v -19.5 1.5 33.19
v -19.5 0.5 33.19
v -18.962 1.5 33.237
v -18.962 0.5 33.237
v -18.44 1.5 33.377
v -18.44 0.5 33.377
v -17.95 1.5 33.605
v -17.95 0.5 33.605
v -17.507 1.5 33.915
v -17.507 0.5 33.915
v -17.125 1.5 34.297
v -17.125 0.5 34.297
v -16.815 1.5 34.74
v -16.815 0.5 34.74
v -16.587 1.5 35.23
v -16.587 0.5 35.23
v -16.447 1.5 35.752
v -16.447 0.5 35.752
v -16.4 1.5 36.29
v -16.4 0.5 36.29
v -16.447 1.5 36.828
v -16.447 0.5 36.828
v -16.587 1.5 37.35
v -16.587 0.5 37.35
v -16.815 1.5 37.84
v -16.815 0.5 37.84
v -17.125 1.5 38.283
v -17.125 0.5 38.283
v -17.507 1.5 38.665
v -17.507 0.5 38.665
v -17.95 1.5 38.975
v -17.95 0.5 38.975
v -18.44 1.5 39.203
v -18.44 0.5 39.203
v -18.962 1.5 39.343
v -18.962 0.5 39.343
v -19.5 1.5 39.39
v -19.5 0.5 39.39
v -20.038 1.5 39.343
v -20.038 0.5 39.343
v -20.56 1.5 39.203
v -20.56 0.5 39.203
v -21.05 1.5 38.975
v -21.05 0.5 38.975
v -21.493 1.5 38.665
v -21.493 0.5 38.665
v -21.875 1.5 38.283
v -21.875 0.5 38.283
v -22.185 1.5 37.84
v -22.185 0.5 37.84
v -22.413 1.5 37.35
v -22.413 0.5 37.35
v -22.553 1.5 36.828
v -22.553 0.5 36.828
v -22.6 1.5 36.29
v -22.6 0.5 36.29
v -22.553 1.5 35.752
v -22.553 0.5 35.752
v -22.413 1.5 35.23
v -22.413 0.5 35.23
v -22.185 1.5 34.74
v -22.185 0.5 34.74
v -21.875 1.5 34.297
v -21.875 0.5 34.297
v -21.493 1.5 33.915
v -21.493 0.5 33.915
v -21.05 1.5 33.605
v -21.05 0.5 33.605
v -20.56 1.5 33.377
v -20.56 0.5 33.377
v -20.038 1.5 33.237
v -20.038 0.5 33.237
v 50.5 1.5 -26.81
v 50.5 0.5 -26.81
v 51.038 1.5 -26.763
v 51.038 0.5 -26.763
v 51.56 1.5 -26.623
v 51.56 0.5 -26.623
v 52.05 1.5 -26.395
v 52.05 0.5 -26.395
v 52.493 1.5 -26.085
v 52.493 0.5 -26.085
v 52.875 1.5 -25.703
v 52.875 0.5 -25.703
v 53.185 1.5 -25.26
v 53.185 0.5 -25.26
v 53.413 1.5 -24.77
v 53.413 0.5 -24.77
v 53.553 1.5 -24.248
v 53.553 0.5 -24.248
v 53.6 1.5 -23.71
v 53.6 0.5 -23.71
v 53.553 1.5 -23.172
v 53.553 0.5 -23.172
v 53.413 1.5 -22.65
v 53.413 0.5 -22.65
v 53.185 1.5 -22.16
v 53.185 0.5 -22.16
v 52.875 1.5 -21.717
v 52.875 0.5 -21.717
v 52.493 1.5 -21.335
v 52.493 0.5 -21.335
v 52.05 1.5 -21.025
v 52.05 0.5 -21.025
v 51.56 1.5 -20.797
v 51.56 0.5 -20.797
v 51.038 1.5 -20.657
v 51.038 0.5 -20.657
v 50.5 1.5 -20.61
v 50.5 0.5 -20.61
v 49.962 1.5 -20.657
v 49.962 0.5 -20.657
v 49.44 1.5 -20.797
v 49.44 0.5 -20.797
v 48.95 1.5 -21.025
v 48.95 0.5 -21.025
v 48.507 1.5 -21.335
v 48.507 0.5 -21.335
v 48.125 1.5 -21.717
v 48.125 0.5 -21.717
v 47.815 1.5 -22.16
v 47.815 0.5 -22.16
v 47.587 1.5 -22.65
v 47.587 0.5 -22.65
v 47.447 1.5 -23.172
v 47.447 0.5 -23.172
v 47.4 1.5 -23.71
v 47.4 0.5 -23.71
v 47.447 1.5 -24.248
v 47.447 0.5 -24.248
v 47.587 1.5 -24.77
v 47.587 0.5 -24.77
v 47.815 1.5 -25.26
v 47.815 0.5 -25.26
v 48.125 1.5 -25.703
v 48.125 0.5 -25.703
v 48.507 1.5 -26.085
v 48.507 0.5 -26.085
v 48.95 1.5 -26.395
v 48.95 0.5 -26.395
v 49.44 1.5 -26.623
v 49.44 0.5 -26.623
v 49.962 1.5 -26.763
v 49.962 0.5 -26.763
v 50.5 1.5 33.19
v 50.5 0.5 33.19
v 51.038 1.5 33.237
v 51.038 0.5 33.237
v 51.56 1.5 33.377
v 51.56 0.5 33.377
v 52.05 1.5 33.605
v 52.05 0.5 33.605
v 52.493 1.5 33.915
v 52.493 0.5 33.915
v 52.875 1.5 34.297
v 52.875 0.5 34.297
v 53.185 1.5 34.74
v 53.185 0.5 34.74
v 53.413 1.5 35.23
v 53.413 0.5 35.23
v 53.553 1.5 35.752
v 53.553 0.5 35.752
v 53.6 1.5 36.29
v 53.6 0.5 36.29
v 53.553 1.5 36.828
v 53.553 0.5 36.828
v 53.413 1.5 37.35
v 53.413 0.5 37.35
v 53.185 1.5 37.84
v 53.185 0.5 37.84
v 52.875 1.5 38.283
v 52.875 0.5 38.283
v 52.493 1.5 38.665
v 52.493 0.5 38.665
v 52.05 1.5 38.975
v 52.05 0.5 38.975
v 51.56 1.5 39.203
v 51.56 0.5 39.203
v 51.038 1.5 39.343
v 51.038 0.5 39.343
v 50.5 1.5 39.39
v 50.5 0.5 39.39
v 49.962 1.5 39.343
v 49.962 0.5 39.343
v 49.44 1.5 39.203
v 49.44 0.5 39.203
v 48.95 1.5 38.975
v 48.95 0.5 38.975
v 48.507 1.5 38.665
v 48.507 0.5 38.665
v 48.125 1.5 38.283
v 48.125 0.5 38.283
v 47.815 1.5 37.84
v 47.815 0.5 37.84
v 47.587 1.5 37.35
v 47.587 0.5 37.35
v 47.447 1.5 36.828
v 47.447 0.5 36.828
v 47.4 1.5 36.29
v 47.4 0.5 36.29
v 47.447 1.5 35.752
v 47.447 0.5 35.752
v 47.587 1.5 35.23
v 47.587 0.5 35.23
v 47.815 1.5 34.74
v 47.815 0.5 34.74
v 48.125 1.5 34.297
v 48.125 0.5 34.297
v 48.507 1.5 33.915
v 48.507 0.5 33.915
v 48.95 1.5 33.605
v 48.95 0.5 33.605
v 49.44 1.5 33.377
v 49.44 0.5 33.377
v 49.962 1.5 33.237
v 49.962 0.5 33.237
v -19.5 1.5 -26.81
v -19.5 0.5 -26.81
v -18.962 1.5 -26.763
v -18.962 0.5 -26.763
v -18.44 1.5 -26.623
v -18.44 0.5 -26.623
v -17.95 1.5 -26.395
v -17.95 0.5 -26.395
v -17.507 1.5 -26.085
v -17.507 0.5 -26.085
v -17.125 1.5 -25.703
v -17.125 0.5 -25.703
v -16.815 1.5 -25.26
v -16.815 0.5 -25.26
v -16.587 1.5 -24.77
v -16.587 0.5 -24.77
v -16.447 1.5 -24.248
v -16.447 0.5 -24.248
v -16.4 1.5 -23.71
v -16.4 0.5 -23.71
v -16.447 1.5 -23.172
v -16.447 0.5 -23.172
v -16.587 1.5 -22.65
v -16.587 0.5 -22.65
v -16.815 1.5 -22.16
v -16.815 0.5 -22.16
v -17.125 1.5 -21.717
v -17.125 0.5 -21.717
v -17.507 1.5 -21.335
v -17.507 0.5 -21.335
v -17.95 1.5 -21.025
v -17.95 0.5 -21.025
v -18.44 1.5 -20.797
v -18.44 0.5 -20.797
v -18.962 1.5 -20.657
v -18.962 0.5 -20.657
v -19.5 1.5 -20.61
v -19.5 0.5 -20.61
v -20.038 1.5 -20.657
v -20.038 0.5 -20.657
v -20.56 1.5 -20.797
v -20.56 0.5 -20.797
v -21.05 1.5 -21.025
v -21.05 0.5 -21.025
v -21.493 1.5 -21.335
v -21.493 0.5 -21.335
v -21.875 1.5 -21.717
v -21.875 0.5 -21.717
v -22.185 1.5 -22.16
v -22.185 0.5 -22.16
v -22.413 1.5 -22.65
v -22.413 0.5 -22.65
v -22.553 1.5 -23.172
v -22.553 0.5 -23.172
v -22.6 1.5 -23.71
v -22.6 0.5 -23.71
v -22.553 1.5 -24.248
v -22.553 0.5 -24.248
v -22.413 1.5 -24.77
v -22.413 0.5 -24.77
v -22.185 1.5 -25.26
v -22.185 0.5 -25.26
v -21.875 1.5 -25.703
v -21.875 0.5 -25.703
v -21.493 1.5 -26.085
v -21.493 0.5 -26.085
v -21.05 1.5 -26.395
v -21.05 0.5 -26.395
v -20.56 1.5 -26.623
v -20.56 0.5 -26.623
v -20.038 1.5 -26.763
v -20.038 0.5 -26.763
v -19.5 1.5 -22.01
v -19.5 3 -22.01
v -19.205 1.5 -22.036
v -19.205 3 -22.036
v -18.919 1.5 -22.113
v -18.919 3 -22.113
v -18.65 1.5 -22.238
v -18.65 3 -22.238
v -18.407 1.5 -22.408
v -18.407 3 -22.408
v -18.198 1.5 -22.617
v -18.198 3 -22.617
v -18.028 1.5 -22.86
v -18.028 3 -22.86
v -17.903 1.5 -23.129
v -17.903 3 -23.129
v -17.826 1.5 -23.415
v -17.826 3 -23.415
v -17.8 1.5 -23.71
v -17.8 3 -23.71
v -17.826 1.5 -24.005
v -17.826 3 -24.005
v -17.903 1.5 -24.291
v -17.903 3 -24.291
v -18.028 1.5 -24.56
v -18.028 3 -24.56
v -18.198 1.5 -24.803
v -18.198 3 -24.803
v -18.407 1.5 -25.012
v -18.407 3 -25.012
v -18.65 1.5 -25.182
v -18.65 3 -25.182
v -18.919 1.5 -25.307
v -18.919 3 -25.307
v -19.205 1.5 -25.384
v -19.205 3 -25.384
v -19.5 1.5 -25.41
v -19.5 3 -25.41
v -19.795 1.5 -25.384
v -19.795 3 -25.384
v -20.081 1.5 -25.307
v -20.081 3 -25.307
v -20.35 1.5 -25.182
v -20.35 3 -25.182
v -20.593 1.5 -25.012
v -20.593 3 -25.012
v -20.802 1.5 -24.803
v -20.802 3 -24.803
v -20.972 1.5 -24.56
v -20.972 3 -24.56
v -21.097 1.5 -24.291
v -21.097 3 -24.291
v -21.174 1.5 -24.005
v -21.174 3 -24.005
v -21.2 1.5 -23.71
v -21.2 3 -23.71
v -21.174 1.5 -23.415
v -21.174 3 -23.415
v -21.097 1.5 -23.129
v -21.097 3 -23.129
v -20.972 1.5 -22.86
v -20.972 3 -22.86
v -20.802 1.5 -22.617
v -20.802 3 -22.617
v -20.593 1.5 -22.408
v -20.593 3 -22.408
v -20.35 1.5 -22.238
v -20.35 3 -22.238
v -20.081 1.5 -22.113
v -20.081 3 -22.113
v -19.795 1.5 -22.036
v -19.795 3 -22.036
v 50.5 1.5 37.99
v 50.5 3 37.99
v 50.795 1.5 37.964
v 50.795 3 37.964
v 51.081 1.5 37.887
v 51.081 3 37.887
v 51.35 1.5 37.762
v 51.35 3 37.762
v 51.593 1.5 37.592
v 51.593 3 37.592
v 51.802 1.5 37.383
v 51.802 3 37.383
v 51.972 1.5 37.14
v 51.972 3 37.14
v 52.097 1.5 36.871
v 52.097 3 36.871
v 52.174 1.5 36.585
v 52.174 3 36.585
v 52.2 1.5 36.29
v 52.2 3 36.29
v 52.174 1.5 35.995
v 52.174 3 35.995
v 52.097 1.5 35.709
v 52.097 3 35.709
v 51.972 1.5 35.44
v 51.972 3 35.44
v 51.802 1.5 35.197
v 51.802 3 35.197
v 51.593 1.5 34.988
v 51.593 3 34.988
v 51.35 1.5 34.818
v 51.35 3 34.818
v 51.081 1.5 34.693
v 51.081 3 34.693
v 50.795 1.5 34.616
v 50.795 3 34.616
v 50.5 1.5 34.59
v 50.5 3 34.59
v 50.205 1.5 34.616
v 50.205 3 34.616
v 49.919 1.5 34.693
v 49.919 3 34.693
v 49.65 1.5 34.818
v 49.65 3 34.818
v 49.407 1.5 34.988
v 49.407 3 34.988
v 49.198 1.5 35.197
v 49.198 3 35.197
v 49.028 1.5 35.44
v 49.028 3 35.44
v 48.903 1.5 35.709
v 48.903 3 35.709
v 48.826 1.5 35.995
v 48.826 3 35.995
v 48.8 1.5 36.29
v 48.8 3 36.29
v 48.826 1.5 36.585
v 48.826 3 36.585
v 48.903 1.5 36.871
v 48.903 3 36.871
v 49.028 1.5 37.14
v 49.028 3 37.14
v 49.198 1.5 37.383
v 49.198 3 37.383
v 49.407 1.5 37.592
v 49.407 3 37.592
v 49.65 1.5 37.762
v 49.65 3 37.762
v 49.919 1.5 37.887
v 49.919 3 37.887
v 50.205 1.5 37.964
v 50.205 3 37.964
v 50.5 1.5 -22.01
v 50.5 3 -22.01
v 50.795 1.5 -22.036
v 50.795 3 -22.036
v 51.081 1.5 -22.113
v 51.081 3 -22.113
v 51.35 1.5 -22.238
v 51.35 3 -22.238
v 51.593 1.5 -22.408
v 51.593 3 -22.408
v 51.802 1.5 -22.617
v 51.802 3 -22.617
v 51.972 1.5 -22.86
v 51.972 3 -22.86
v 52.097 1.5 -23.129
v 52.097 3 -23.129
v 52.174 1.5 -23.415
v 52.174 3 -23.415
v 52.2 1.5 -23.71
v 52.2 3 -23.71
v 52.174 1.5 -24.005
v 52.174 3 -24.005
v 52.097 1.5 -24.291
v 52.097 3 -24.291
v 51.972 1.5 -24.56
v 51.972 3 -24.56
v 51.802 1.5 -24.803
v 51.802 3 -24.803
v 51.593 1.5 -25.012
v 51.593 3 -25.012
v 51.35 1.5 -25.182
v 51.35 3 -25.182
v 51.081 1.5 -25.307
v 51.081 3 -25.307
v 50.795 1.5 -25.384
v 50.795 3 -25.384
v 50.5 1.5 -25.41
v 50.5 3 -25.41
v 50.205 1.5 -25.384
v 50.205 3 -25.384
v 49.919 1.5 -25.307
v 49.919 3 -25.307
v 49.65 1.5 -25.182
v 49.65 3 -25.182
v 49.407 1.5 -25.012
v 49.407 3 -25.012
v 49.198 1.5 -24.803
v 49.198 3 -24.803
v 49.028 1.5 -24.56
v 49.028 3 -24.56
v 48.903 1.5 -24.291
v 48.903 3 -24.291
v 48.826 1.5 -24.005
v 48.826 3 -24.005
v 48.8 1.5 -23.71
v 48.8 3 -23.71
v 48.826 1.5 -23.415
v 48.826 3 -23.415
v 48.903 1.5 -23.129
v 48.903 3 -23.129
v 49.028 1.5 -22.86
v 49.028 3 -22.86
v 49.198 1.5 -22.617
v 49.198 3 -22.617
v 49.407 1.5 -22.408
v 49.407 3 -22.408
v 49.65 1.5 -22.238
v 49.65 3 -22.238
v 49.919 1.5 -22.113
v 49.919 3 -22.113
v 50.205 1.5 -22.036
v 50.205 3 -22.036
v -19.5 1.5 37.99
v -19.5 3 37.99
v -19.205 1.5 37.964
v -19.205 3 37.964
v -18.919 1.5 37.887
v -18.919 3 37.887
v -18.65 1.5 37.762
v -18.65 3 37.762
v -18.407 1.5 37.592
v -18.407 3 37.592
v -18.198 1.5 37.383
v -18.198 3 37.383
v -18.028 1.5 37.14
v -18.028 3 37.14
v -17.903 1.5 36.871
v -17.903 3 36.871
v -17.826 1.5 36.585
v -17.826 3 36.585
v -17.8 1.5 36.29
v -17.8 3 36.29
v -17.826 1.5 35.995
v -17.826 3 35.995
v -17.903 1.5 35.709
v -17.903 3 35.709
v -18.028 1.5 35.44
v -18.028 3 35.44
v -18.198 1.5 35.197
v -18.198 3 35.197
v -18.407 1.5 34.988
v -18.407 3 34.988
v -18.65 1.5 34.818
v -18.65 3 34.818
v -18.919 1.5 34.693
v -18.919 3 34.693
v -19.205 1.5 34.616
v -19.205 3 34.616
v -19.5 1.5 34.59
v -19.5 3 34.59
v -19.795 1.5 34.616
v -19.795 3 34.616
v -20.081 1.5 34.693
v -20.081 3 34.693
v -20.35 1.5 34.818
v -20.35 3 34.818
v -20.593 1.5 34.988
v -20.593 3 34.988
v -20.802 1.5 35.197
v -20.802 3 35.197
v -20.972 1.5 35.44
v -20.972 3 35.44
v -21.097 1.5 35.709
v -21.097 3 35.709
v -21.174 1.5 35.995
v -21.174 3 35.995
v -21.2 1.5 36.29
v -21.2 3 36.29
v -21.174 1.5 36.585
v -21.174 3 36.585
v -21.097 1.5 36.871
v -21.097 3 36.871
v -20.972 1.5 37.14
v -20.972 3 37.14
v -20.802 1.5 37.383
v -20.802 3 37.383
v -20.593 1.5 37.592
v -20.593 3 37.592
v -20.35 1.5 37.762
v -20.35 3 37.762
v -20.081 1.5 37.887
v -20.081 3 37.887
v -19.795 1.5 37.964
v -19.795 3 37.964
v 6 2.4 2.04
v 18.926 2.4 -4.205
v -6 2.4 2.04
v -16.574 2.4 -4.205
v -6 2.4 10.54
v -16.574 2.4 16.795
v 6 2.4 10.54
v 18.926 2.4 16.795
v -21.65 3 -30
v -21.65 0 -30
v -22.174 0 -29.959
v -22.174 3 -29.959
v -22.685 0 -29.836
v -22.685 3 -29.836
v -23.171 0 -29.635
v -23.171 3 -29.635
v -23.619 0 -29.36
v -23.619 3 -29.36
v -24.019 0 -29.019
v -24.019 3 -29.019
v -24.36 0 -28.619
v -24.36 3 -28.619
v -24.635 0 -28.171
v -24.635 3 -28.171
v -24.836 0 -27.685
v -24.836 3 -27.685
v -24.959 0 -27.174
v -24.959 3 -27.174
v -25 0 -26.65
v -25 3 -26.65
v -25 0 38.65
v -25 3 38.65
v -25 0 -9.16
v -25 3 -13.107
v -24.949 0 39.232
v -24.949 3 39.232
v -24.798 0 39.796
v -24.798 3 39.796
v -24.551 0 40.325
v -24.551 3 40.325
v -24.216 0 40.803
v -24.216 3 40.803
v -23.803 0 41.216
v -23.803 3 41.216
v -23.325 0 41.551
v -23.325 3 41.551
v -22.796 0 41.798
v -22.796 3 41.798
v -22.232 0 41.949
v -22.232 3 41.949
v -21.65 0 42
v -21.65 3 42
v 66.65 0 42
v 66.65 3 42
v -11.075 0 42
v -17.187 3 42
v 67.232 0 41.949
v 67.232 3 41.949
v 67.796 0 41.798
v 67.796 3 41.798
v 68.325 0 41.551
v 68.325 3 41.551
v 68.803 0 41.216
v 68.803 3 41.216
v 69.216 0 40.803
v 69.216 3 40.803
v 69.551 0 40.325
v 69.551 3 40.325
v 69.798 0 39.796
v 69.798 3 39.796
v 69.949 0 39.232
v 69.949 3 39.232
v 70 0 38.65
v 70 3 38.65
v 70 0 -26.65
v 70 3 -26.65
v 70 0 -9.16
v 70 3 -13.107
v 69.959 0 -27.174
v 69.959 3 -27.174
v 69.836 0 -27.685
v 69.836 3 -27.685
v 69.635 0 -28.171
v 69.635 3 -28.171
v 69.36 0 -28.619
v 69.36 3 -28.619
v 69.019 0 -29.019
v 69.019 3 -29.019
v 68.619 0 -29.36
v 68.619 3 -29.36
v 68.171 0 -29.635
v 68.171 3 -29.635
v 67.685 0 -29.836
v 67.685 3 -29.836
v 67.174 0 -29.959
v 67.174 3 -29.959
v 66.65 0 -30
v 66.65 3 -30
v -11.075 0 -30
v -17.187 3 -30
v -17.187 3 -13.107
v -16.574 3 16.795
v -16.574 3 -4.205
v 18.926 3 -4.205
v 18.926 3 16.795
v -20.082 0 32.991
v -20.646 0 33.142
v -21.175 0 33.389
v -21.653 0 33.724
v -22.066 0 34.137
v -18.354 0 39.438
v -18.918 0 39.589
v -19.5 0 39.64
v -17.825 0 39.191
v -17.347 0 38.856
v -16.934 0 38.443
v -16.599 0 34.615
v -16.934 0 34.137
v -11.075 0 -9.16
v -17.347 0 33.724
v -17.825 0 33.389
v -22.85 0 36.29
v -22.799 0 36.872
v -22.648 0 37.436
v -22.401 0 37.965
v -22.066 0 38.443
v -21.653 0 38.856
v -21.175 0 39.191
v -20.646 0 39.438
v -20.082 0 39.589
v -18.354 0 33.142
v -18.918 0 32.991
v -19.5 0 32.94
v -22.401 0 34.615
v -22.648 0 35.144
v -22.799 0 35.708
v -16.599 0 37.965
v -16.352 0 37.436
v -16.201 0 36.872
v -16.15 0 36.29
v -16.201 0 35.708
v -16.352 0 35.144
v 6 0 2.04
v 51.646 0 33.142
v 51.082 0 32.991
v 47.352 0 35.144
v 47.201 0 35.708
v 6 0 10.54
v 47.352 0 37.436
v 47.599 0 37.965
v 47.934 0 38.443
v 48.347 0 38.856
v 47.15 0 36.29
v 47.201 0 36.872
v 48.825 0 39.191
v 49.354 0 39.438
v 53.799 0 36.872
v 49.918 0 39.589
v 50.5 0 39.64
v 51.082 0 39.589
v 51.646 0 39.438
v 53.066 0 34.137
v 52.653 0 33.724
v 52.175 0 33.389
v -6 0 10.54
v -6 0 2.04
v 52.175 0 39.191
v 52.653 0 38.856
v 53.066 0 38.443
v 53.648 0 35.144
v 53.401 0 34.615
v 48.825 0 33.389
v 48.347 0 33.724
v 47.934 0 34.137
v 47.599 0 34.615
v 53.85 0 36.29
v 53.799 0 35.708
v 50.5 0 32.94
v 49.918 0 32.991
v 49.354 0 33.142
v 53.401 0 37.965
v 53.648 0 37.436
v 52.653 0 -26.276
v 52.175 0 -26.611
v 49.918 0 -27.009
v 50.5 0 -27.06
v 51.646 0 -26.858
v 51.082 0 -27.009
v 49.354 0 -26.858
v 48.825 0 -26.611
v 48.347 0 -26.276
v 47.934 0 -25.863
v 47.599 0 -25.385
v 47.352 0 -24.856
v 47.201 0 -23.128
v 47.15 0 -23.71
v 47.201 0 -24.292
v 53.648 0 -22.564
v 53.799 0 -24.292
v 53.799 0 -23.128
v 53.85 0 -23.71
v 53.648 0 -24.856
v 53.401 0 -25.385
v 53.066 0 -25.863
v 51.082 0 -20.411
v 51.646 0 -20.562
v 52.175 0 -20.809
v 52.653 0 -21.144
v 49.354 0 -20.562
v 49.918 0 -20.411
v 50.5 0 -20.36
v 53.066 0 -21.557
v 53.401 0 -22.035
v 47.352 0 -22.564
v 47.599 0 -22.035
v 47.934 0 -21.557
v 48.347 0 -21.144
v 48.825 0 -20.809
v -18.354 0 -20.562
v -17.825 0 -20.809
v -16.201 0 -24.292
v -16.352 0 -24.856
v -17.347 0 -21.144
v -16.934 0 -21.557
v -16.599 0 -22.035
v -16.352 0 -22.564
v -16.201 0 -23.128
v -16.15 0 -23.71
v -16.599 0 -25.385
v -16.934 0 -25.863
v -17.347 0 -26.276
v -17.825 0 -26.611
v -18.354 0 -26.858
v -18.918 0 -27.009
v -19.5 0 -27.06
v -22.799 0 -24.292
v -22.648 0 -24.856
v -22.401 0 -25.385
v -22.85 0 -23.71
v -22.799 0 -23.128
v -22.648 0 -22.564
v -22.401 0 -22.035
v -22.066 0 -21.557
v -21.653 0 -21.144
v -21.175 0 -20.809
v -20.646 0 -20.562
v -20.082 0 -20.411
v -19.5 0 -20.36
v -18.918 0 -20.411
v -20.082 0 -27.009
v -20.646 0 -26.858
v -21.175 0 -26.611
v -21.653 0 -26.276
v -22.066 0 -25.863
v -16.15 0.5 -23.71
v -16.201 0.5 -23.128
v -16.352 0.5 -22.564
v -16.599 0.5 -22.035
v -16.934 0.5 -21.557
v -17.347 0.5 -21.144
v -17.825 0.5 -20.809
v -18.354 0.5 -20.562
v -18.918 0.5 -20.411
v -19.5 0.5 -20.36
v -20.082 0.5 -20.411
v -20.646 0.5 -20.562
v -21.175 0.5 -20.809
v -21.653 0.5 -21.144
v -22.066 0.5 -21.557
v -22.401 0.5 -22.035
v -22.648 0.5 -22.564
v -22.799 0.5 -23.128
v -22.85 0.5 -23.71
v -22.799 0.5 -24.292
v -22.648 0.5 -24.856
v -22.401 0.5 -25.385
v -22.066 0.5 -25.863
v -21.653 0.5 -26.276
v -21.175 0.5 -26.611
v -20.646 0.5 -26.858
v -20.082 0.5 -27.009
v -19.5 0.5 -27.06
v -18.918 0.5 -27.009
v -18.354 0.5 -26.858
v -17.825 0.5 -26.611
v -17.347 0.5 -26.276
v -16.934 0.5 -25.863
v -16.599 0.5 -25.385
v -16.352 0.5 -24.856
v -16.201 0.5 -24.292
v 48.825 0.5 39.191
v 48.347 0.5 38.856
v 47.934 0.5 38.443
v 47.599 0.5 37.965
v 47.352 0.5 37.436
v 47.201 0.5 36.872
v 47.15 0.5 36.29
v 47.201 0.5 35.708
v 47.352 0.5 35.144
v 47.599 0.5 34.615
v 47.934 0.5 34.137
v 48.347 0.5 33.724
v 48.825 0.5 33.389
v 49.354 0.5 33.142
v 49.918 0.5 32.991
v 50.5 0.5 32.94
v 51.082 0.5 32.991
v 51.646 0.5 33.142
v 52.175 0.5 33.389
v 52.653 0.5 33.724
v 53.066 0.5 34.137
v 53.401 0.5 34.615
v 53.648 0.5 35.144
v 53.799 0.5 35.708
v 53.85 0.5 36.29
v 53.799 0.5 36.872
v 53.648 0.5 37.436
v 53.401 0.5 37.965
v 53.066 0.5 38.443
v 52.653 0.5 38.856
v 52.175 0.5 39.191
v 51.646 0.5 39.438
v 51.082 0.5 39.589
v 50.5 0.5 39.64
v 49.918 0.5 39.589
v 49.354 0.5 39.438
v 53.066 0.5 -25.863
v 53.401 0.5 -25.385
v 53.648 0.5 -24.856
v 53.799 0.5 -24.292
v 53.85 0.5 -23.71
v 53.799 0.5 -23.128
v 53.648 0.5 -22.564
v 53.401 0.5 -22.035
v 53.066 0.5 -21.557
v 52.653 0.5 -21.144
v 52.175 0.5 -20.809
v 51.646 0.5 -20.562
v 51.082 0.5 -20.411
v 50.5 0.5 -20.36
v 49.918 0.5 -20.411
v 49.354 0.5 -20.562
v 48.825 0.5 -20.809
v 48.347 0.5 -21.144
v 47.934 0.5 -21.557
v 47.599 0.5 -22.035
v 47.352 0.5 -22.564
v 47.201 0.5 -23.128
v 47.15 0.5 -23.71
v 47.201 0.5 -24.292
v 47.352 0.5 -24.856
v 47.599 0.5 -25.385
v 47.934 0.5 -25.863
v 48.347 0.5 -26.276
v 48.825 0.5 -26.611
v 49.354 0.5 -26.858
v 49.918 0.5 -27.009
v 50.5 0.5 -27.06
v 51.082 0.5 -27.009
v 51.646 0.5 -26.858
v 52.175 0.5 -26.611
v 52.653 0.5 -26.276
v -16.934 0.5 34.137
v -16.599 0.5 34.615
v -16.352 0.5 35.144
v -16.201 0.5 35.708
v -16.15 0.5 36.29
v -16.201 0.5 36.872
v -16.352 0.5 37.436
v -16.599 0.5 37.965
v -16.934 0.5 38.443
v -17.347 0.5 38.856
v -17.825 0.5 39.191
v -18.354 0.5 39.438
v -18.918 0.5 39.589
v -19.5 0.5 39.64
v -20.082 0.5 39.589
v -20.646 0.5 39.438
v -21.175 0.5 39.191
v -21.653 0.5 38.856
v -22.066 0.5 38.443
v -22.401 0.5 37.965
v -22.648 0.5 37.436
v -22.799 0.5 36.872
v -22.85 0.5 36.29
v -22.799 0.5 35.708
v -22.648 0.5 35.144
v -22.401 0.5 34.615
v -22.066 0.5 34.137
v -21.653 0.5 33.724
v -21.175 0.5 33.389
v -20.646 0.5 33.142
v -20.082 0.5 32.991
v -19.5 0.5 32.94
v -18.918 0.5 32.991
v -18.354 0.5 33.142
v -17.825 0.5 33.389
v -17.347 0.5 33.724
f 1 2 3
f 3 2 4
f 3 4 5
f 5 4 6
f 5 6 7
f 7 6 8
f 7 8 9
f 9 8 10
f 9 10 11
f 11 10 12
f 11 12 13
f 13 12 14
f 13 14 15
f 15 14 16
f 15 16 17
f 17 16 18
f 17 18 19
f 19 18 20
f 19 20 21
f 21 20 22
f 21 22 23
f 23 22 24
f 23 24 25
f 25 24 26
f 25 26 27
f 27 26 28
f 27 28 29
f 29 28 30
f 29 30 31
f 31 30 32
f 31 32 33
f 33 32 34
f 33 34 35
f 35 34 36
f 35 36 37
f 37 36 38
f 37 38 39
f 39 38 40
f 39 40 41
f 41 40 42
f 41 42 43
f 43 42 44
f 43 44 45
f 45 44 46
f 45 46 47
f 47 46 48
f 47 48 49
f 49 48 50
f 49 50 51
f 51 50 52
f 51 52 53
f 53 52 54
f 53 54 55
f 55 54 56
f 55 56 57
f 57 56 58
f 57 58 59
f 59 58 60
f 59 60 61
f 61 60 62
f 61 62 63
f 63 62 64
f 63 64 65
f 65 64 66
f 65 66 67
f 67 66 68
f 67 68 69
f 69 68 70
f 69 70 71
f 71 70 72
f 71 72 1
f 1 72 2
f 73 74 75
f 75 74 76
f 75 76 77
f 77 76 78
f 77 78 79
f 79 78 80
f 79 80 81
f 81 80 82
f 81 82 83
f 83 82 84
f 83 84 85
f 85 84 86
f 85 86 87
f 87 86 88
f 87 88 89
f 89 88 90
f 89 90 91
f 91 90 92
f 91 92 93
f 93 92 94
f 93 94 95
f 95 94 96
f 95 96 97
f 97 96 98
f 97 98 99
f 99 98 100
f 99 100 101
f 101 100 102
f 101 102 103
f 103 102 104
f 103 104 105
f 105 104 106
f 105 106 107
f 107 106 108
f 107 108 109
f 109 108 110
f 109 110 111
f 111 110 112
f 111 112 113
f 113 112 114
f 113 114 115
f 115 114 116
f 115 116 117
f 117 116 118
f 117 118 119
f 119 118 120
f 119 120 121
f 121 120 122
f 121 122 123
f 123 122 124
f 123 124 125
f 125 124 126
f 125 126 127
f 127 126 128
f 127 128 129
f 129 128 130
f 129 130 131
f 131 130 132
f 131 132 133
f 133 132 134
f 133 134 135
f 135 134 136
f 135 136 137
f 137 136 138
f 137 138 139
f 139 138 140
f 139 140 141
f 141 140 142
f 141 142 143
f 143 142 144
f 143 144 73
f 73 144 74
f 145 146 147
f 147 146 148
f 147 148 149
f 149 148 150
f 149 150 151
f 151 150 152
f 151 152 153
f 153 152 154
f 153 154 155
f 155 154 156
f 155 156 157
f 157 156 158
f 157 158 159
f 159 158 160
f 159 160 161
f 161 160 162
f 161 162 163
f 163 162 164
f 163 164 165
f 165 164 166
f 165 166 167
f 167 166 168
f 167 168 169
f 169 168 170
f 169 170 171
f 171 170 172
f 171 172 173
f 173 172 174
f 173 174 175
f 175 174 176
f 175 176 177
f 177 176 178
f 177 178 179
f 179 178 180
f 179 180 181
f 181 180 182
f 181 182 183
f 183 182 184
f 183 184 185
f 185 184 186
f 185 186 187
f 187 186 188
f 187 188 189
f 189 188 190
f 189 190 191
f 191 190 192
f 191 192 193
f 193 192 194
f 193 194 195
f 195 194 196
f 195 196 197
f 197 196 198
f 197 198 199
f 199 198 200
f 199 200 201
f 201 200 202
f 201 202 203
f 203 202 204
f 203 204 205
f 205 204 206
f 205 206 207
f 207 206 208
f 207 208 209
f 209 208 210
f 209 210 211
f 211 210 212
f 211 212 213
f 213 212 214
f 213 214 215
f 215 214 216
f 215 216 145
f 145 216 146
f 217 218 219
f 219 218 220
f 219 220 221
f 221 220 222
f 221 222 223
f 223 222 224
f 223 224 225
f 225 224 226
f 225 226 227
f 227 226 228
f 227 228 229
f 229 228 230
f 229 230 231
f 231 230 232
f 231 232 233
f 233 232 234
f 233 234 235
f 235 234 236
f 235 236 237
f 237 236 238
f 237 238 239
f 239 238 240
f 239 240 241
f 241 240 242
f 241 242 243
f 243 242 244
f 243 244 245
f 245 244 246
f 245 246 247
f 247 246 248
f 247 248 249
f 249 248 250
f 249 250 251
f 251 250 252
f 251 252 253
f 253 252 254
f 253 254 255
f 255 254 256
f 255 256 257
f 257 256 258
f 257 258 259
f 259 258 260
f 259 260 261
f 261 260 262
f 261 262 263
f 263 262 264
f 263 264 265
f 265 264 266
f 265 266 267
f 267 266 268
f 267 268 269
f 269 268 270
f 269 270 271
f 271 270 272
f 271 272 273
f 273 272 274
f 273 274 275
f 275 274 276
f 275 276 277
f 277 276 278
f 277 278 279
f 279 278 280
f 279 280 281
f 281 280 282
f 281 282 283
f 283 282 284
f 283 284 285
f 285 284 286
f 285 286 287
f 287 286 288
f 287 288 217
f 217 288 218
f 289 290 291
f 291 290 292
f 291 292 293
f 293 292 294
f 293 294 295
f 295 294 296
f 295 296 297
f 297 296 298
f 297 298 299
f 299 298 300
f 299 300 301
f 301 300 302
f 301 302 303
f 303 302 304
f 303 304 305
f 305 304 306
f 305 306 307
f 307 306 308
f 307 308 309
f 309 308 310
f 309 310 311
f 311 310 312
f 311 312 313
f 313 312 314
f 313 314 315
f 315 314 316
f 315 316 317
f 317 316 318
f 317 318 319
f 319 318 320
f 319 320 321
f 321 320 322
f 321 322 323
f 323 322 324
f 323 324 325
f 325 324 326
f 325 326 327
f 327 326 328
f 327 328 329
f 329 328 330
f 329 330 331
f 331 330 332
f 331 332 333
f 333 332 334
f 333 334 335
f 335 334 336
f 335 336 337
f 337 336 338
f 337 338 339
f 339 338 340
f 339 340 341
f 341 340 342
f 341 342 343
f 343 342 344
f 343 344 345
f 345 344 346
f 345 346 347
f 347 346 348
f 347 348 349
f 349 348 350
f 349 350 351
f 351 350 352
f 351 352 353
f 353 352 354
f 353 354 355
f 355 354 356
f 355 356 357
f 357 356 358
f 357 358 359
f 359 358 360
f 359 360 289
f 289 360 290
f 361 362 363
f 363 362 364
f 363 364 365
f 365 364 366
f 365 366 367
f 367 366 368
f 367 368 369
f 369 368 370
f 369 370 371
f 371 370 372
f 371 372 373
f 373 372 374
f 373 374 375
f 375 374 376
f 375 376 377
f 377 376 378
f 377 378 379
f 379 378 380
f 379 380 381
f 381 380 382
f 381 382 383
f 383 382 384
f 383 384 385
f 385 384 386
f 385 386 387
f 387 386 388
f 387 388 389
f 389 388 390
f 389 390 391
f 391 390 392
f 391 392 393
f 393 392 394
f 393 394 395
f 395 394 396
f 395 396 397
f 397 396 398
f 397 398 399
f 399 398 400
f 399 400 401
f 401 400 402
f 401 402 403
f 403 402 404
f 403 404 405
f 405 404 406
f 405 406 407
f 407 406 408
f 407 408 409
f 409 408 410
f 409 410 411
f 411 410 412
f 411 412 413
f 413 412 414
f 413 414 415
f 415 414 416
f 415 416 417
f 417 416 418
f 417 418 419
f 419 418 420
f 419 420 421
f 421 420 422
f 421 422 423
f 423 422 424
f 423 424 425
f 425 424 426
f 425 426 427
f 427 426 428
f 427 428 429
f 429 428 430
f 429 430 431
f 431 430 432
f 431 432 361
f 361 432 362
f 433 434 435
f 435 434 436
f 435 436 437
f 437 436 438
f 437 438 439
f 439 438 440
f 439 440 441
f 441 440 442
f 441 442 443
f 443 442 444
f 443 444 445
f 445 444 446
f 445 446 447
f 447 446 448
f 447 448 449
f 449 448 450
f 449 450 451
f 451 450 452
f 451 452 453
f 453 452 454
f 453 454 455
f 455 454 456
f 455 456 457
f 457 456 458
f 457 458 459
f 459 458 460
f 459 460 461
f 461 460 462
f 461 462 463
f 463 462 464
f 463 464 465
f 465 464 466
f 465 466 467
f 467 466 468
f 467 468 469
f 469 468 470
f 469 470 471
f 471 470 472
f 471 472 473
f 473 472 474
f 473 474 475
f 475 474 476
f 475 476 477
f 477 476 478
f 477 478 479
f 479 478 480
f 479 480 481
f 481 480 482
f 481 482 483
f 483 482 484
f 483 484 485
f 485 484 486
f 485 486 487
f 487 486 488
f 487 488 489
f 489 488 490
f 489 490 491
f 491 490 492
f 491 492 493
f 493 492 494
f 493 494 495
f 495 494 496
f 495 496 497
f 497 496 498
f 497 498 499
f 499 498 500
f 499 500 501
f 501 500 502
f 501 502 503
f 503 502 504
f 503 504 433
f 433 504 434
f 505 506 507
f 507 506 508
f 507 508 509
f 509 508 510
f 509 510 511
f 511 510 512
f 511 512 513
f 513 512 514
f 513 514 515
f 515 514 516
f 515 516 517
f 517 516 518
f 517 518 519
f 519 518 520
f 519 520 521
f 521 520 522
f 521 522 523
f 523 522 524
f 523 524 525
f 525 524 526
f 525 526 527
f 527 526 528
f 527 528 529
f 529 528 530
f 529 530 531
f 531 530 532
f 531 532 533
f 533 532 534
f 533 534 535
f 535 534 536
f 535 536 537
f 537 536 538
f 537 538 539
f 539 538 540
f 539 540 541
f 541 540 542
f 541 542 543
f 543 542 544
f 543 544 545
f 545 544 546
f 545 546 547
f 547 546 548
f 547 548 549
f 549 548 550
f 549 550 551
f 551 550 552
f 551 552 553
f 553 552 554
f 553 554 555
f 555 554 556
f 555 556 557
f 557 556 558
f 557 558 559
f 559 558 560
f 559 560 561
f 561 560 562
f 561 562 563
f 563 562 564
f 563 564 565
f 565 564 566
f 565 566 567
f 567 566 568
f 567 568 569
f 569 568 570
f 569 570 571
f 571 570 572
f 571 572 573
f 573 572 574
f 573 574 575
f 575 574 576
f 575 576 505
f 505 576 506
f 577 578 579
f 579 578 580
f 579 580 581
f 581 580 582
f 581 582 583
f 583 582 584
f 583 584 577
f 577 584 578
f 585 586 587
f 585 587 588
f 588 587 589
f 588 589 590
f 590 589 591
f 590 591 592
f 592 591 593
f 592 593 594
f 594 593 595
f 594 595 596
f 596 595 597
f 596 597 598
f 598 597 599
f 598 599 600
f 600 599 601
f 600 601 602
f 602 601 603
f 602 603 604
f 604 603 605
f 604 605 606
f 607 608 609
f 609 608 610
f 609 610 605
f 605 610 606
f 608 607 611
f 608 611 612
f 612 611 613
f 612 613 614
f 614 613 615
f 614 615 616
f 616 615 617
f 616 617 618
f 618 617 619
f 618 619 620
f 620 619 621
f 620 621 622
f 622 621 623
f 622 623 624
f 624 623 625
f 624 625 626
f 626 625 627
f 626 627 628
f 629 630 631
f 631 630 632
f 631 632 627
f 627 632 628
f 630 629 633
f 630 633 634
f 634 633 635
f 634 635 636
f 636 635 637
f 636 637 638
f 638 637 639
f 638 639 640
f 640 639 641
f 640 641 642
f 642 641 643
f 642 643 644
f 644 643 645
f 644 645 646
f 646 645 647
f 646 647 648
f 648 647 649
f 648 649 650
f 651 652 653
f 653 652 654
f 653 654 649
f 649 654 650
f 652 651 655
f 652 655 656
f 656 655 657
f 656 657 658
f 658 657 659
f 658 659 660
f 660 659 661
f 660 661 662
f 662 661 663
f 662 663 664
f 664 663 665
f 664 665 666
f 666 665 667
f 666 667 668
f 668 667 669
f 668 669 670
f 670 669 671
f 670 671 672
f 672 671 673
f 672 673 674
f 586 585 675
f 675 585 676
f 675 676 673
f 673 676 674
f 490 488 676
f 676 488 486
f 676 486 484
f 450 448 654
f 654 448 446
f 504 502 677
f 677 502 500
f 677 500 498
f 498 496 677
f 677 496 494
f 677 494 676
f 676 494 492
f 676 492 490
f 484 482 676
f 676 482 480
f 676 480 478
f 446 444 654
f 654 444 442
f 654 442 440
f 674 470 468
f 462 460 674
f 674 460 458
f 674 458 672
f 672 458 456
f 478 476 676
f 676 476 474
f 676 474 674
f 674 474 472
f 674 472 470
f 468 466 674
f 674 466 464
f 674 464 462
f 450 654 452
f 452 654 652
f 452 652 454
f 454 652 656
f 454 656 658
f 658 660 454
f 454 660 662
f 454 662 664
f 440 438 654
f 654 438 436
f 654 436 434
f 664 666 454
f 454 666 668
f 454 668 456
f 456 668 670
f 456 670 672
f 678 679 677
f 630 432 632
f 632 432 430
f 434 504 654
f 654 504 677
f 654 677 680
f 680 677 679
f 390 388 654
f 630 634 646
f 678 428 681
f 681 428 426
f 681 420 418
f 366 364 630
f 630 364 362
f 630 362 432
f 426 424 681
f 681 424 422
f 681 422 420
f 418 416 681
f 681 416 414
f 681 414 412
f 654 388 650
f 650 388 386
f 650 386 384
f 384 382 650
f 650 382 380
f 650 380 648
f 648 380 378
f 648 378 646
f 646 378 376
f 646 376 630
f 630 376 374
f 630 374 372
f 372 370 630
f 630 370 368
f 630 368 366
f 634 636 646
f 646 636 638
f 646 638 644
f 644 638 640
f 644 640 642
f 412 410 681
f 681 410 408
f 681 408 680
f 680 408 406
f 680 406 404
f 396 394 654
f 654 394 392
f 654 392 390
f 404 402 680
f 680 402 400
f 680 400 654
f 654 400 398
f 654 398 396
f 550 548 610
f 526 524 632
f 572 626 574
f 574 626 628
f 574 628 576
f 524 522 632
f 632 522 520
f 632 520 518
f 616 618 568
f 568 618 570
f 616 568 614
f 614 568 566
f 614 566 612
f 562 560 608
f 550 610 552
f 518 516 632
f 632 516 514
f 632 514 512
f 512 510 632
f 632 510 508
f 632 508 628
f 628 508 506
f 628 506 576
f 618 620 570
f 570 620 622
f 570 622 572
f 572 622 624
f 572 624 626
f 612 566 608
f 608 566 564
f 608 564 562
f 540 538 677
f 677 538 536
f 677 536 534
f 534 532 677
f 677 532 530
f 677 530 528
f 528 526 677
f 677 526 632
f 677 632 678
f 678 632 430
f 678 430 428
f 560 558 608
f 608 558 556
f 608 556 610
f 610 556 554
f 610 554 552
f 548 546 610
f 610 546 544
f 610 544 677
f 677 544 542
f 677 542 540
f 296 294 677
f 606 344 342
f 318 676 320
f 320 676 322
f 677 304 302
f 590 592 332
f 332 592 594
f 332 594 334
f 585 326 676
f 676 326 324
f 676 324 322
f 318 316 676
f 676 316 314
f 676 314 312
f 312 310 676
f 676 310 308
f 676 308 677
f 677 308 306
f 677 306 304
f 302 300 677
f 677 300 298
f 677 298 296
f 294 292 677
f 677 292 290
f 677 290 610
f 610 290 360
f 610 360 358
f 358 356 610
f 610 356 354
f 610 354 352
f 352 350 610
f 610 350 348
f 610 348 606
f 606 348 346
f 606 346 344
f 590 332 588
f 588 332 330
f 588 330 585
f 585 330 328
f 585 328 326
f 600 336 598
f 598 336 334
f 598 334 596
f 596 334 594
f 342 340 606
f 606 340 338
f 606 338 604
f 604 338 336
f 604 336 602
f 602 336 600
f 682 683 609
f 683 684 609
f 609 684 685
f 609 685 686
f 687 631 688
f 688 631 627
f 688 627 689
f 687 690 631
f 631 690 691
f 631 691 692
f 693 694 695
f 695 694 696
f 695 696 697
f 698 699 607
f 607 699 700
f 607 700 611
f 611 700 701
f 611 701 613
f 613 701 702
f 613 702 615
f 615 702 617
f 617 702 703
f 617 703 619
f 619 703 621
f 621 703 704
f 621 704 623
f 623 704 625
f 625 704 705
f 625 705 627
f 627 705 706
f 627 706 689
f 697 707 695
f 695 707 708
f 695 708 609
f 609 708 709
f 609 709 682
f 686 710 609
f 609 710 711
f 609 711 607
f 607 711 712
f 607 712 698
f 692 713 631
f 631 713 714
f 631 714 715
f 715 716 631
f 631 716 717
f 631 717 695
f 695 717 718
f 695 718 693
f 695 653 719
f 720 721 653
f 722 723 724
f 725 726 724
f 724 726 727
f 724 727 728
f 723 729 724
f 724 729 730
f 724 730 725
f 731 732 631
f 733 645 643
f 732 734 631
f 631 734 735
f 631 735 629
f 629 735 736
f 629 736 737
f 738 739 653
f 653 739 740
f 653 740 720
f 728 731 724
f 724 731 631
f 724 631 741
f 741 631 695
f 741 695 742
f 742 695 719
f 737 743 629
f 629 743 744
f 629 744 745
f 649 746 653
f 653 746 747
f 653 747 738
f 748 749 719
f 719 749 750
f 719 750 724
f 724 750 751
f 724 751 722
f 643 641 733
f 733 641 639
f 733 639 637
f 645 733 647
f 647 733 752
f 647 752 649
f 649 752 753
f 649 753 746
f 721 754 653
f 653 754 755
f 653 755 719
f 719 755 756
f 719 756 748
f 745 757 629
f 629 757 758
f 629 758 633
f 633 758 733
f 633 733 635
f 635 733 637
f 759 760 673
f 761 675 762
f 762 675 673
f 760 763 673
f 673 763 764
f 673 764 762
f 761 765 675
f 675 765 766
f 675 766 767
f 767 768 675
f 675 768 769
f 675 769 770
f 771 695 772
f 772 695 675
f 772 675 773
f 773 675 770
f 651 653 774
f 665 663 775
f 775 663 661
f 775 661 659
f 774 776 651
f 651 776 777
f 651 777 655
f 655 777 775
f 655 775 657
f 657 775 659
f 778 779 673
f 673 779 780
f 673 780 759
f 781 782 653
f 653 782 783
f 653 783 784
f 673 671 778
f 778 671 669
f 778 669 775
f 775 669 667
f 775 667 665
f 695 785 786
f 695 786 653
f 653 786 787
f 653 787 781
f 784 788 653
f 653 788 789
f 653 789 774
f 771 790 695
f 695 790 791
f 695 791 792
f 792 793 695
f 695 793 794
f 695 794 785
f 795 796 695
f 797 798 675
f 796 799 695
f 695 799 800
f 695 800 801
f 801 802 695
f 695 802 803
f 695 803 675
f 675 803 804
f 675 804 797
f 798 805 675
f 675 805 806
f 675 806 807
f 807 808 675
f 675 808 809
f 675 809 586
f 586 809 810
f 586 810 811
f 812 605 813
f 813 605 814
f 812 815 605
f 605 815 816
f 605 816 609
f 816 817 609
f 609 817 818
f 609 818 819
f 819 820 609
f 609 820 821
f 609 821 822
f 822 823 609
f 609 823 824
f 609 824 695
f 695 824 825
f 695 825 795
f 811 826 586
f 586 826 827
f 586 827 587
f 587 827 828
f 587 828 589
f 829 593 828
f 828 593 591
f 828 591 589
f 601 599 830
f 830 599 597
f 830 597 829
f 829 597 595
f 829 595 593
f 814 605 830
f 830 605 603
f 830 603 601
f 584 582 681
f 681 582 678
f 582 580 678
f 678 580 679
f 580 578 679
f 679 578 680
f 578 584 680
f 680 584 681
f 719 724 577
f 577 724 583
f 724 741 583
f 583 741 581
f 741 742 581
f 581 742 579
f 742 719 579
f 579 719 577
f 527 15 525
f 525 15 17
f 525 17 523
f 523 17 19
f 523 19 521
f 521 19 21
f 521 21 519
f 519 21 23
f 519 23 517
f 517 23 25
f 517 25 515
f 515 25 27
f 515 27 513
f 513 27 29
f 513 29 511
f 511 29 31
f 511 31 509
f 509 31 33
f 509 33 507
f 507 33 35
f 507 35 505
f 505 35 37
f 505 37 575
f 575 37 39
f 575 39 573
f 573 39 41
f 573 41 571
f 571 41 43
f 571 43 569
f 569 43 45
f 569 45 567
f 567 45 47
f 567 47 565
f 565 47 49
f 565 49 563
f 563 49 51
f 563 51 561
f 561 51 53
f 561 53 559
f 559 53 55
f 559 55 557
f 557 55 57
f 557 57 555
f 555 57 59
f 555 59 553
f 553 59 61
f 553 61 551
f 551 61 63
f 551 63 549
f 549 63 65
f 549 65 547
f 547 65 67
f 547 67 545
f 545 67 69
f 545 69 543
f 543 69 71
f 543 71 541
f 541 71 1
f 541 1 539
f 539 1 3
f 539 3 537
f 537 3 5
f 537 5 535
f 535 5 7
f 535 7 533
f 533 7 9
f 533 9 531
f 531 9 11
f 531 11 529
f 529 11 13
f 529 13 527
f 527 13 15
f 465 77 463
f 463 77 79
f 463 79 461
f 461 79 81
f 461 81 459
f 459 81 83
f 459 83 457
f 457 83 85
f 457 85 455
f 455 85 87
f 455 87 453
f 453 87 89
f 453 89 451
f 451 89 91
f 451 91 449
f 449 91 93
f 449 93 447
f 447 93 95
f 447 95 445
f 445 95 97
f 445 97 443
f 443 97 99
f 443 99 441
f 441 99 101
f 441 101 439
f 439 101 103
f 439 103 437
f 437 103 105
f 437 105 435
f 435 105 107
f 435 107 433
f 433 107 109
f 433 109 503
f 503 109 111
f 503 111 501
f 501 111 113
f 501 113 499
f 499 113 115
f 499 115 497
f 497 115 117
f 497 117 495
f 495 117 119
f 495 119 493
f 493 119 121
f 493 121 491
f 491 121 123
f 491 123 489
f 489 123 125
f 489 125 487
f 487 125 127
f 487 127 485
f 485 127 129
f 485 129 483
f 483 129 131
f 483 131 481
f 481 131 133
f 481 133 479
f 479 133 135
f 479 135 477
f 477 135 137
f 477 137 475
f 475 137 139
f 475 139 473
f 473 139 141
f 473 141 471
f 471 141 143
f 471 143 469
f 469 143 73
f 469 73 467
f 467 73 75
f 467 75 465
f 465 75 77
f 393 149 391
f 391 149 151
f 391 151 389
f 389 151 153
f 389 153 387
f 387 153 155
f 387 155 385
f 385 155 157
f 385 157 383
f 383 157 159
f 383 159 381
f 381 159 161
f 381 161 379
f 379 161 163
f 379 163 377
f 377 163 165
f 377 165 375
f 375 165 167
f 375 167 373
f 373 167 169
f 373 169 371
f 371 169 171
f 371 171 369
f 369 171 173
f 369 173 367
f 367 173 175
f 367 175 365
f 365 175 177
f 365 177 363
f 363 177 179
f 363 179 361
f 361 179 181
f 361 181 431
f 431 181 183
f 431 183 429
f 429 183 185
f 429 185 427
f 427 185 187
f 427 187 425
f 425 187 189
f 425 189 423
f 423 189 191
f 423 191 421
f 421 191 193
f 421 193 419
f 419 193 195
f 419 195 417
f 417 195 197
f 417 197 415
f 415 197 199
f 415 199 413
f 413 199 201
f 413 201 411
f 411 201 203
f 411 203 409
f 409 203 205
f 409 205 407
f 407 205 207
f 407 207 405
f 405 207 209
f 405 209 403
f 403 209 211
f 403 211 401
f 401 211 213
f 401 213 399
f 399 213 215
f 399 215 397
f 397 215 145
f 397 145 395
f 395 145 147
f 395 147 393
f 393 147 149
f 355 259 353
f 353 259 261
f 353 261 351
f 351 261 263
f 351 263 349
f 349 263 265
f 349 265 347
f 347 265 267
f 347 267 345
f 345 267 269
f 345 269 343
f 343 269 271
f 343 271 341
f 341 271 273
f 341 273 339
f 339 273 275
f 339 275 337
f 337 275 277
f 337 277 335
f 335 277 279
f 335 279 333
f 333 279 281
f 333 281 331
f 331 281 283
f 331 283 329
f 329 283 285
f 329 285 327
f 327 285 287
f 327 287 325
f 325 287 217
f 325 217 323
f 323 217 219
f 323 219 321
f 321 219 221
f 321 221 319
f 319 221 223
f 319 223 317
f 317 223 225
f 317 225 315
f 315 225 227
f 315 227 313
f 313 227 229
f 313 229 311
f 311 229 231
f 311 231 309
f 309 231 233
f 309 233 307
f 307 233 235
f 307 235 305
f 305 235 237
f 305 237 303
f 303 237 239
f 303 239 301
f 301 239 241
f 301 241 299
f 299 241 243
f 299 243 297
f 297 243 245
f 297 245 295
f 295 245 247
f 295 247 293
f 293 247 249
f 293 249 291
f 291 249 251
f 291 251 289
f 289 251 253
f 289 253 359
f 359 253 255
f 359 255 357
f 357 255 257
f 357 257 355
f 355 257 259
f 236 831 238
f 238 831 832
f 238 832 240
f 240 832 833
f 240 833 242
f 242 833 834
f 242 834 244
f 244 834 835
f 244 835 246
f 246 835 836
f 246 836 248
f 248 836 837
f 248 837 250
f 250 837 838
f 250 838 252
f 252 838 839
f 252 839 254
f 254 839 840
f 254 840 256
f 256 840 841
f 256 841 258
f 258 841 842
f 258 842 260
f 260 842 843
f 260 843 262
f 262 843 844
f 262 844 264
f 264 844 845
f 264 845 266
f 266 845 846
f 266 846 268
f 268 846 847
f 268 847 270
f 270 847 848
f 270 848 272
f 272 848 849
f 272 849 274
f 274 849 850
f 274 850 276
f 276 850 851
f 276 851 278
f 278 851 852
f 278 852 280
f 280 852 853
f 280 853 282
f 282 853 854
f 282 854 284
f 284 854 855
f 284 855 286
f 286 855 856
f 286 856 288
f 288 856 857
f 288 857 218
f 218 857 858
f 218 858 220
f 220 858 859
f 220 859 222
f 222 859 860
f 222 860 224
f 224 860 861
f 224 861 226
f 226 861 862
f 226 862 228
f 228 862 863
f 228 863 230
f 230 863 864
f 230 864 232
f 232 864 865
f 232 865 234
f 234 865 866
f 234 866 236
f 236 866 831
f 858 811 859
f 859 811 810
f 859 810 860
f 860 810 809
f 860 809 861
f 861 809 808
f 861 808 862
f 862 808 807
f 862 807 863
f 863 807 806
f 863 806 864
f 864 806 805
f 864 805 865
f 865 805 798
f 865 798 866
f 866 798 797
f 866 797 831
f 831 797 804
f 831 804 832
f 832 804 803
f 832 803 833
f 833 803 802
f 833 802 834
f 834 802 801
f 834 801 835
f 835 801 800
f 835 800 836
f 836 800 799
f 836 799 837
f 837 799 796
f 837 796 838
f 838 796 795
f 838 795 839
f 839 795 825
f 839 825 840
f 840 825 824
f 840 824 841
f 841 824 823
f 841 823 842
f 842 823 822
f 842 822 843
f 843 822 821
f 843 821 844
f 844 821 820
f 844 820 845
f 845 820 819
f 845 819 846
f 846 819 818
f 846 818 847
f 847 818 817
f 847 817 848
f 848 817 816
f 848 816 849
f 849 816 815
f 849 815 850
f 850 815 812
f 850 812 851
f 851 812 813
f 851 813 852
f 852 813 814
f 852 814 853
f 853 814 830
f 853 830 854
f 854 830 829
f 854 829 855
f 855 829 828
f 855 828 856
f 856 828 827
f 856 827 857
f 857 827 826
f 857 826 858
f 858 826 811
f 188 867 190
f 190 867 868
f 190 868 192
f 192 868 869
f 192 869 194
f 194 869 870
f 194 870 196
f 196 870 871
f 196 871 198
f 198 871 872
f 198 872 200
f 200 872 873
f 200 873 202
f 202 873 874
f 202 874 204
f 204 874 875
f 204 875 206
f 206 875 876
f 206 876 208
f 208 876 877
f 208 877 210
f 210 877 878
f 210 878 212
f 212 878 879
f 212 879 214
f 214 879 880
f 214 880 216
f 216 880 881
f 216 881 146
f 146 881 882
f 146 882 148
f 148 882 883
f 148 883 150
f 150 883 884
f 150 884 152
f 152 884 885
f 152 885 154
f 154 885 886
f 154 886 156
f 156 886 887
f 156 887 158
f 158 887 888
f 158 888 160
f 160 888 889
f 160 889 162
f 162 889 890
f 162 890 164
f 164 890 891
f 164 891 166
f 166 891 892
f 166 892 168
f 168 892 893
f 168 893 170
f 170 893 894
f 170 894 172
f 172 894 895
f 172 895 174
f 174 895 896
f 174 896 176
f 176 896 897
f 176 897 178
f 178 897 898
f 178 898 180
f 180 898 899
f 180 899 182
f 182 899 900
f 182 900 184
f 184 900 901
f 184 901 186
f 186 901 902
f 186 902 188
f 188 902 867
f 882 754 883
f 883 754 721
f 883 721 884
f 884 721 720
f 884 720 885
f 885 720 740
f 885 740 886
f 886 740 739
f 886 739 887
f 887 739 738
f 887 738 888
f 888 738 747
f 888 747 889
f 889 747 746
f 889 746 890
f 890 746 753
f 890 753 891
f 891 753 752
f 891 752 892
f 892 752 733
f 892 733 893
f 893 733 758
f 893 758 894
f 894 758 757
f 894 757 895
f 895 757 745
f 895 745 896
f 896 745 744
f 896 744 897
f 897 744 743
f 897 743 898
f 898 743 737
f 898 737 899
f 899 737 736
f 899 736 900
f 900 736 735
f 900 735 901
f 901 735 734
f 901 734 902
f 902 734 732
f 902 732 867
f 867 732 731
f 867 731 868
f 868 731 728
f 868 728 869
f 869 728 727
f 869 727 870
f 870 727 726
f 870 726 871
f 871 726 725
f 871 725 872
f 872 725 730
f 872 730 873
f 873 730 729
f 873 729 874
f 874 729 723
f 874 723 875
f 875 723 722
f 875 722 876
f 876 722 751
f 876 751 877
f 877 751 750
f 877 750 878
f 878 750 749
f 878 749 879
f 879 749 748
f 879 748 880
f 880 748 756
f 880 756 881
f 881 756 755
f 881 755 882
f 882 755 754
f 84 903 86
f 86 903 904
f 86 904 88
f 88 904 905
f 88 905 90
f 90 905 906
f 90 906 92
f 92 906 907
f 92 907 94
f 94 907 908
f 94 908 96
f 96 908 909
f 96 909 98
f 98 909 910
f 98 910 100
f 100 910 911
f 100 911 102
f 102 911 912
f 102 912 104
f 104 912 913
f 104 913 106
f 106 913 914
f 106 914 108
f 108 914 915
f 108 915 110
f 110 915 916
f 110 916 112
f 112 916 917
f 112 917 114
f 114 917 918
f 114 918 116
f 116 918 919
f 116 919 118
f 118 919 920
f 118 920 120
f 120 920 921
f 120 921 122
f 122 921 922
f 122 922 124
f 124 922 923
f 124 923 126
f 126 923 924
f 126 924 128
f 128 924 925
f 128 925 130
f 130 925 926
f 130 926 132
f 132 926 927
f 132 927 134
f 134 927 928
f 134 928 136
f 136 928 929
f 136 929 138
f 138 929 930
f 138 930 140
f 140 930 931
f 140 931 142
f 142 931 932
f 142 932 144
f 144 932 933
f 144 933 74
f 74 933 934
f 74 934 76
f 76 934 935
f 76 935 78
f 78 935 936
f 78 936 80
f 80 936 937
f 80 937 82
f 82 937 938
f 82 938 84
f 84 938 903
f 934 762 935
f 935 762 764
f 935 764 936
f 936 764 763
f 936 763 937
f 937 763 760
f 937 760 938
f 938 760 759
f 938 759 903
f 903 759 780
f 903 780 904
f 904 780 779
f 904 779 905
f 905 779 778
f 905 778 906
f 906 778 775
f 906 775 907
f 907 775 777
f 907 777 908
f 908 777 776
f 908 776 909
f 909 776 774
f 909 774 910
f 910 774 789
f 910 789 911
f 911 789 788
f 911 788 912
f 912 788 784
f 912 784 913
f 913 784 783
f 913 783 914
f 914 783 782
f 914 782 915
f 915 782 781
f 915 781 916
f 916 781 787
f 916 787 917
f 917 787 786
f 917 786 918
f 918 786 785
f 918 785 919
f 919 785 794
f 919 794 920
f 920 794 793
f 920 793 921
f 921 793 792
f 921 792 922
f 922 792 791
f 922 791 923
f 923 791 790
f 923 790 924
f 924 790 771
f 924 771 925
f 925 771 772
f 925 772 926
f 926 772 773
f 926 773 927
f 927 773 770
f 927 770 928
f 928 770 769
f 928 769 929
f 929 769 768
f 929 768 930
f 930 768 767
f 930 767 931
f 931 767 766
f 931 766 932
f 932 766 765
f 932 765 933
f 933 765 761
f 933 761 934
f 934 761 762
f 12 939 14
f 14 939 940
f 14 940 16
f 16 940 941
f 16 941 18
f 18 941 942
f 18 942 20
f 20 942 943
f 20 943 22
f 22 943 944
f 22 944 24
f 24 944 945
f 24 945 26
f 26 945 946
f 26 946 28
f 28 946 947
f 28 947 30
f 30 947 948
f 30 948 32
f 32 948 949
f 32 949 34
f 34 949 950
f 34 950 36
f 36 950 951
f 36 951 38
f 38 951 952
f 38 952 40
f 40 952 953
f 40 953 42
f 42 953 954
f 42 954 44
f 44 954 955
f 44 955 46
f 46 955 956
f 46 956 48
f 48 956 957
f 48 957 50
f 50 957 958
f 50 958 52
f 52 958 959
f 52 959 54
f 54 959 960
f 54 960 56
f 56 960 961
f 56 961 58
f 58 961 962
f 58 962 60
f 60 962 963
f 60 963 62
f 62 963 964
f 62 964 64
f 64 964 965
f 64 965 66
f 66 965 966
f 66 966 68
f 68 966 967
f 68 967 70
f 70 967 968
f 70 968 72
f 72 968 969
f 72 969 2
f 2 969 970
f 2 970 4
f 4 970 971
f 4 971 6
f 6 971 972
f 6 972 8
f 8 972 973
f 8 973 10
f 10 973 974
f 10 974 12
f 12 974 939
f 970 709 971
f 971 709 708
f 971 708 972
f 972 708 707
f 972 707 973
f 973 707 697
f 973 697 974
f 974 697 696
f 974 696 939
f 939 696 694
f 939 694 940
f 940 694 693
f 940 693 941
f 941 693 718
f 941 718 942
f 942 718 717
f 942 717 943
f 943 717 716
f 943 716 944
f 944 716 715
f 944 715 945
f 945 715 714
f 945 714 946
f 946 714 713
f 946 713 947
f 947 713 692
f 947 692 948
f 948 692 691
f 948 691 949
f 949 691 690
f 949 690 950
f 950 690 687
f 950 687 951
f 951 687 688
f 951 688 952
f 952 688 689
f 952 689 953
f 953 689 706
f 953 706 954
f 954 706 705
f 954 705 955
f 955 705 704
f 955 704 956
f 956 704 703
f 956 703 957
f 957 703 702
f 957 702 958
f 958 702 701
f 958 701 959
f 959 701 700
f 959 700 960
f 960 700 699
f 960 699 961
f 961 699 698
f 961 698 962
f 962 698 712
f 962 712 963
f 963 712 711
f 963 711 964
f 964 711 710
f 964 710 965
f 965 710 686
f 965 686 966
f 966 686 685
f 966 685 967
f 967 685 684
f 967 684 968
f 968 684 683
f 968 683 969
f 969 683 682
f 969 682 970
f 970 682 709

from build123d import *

# Parameters (mm, degrees)
EXTRUDE_2_DEPTH     = 3
SKETCH_11_R         = 1.7
CUT_EXTRUDE_2_DEPTH = 82.688432474
SKETCH_13_W         = 35.5
SKETCH_13_H         = 21
CUT_EXTRUDE_3_DEPTH = 0.6
SKETCH_14_W         = 12
SKETCH_14_H         = 8.5
CUT_EXTRUDE_4_DEPTH = 82.668598617
SKETCH_16_R         = 3.1
CUT_EXTRUDE_5_DEPTH = 1.5
SKETCH_17_R         = 3.35
CUT_EXTRUDE_6_DEPTH = 0.5


with BuildPart() as part:
    # 草图8 → 凸台-拉伸2 (new body)
    with BuildSketch(Plane(origin=(0, 0, 0), x_dir=(1, 0, 0), z_dir=(0, 1, 0))):
        with BuildLine():
            Line((-21.65, 30), (66.65, 30))
            ThreePointArc((66.65, 30), (69.018807717, 29.018807717), (70, 26.65))
            Line((70, 26.65), (70, -38.65))
            ThreePointArc((70, -38.65), (69.018807717, -41.018807717), (66.65, -42))
            Line((66.65, -42), (-21.65, -42))
            ThreePointArc((-21.65, -42), (-24.018807717, -41.018807717), (-25, -38.65))
            Line((-25, -38.65), (-25, 26.65))
            ThreePointArc((-25, 26.65), (-24.018807717, 29.018807717), (-21.65, 30))
        make_face()
    extrude(amount=EXTRUDE_2_DEPTH)

    # 草图11 → 切除-拉伸2 (cut, through all)
    with BuildSketch(Plane(origin=(0, 3, 0), x_dir=(1, 0, 0), z_dir=(0, 1, 0))):
        with Locations(Location((-19.5, 23.71, 0), (0, 0, 270))):
            Circle(SKETCH_11_R)
        with Locations(Location((-19.5, -36.29, 0), (0, 0, 270))):
            Circle(SKETCH_11_R)
        with Locations(Location((50.5, 23.71, 0), (0, 0, 270))):
            Circle(SKETCH_11_R)
        with Locations(Location((50.5, -36.29, 0), (0, 0, 270))):
            Circle(SKETCH_11_R)
    extrude(amount=-CUT_EXTRUDE_2_DEPTH, mode=Mode.SUBTRACT)

    # 草图13 → 切除-拉伸3 (cut)
    with BuildSketch(Plane(origin=(0, 3, 0), x_dir=(1, 0, 0), z_dir=(0, 1, 0))):
        with Locations((1.176, -6.295)):
            Rectangle(SKETCH_13_W, SKETCH_13_H)
    extrude(amount=-CUT_EXTRUDE_3_DEPTH, mode=Mode.SUBTRACT)

    # 草图14 → 切除-拉伸4 (cut, through all)
    with BuildSketch(Plane(origin=(0, 2.4, 0), x_dir=(1, 0, 0), z_dir=(0, 1, 0))):
        with Locations((0, -6.29)):
            Rectangle(SKETCH_14_W, SKETCH_14_H)
    extrude(amount=-CUT_EXTRUDE_4_DEPTH, mode=Mode.SUBTRACT)

    # 草图16 → 切除-拉伸5 (cut)
    with BuildSketch(Plane.XZ):
        with Locations(Location((-19.5, 36.29, 0), (0, 0, 270))):
            Circle(SKETCH_16_R)
        with Locations(Location((-19.5, -23.71, 0), (0, 0, 270))):
            Circle(SKETCH_16_R)
        with Locations(Location((50.5, 36.29, 0), (0, 0, 270))):
            Circle(SKETCH_16_R)
        with Locations(Location((50.5, -23.71, 0), (0, 0, 270))):
            Circle(SKETCH_16_R)
    extrude(amount=-CUT_EXTRUDE_5_DEPTH, mode=Mode.SUBTRACT)

    # 草图17 → 切除-拉伸6 (cut)
    with BuildSketch(Plane.XZ):
        with Locations(Location((-19.5, 36.29, 0), (0, 0, 270))):
            Circle(SKETCH_17_R)
        with Locations(Location((-19.5, -23.71, 0), (0, 0, 270))):
            Circle(SKETCH_17_R)
        with Locations(Location((50.5, 36.29, 0), (0, 0, 270))):
            Circle(SKETCH_17_R)
        with Locations(Location((50.5, -23.71, 0), (0, 0, 270))):
            Circle(SKETCH_17_R)
    extrude(amount=-CUT_EXTRUDE_6_DEPTH, mode=Mode.SUBTRACT)


solid = part.part
